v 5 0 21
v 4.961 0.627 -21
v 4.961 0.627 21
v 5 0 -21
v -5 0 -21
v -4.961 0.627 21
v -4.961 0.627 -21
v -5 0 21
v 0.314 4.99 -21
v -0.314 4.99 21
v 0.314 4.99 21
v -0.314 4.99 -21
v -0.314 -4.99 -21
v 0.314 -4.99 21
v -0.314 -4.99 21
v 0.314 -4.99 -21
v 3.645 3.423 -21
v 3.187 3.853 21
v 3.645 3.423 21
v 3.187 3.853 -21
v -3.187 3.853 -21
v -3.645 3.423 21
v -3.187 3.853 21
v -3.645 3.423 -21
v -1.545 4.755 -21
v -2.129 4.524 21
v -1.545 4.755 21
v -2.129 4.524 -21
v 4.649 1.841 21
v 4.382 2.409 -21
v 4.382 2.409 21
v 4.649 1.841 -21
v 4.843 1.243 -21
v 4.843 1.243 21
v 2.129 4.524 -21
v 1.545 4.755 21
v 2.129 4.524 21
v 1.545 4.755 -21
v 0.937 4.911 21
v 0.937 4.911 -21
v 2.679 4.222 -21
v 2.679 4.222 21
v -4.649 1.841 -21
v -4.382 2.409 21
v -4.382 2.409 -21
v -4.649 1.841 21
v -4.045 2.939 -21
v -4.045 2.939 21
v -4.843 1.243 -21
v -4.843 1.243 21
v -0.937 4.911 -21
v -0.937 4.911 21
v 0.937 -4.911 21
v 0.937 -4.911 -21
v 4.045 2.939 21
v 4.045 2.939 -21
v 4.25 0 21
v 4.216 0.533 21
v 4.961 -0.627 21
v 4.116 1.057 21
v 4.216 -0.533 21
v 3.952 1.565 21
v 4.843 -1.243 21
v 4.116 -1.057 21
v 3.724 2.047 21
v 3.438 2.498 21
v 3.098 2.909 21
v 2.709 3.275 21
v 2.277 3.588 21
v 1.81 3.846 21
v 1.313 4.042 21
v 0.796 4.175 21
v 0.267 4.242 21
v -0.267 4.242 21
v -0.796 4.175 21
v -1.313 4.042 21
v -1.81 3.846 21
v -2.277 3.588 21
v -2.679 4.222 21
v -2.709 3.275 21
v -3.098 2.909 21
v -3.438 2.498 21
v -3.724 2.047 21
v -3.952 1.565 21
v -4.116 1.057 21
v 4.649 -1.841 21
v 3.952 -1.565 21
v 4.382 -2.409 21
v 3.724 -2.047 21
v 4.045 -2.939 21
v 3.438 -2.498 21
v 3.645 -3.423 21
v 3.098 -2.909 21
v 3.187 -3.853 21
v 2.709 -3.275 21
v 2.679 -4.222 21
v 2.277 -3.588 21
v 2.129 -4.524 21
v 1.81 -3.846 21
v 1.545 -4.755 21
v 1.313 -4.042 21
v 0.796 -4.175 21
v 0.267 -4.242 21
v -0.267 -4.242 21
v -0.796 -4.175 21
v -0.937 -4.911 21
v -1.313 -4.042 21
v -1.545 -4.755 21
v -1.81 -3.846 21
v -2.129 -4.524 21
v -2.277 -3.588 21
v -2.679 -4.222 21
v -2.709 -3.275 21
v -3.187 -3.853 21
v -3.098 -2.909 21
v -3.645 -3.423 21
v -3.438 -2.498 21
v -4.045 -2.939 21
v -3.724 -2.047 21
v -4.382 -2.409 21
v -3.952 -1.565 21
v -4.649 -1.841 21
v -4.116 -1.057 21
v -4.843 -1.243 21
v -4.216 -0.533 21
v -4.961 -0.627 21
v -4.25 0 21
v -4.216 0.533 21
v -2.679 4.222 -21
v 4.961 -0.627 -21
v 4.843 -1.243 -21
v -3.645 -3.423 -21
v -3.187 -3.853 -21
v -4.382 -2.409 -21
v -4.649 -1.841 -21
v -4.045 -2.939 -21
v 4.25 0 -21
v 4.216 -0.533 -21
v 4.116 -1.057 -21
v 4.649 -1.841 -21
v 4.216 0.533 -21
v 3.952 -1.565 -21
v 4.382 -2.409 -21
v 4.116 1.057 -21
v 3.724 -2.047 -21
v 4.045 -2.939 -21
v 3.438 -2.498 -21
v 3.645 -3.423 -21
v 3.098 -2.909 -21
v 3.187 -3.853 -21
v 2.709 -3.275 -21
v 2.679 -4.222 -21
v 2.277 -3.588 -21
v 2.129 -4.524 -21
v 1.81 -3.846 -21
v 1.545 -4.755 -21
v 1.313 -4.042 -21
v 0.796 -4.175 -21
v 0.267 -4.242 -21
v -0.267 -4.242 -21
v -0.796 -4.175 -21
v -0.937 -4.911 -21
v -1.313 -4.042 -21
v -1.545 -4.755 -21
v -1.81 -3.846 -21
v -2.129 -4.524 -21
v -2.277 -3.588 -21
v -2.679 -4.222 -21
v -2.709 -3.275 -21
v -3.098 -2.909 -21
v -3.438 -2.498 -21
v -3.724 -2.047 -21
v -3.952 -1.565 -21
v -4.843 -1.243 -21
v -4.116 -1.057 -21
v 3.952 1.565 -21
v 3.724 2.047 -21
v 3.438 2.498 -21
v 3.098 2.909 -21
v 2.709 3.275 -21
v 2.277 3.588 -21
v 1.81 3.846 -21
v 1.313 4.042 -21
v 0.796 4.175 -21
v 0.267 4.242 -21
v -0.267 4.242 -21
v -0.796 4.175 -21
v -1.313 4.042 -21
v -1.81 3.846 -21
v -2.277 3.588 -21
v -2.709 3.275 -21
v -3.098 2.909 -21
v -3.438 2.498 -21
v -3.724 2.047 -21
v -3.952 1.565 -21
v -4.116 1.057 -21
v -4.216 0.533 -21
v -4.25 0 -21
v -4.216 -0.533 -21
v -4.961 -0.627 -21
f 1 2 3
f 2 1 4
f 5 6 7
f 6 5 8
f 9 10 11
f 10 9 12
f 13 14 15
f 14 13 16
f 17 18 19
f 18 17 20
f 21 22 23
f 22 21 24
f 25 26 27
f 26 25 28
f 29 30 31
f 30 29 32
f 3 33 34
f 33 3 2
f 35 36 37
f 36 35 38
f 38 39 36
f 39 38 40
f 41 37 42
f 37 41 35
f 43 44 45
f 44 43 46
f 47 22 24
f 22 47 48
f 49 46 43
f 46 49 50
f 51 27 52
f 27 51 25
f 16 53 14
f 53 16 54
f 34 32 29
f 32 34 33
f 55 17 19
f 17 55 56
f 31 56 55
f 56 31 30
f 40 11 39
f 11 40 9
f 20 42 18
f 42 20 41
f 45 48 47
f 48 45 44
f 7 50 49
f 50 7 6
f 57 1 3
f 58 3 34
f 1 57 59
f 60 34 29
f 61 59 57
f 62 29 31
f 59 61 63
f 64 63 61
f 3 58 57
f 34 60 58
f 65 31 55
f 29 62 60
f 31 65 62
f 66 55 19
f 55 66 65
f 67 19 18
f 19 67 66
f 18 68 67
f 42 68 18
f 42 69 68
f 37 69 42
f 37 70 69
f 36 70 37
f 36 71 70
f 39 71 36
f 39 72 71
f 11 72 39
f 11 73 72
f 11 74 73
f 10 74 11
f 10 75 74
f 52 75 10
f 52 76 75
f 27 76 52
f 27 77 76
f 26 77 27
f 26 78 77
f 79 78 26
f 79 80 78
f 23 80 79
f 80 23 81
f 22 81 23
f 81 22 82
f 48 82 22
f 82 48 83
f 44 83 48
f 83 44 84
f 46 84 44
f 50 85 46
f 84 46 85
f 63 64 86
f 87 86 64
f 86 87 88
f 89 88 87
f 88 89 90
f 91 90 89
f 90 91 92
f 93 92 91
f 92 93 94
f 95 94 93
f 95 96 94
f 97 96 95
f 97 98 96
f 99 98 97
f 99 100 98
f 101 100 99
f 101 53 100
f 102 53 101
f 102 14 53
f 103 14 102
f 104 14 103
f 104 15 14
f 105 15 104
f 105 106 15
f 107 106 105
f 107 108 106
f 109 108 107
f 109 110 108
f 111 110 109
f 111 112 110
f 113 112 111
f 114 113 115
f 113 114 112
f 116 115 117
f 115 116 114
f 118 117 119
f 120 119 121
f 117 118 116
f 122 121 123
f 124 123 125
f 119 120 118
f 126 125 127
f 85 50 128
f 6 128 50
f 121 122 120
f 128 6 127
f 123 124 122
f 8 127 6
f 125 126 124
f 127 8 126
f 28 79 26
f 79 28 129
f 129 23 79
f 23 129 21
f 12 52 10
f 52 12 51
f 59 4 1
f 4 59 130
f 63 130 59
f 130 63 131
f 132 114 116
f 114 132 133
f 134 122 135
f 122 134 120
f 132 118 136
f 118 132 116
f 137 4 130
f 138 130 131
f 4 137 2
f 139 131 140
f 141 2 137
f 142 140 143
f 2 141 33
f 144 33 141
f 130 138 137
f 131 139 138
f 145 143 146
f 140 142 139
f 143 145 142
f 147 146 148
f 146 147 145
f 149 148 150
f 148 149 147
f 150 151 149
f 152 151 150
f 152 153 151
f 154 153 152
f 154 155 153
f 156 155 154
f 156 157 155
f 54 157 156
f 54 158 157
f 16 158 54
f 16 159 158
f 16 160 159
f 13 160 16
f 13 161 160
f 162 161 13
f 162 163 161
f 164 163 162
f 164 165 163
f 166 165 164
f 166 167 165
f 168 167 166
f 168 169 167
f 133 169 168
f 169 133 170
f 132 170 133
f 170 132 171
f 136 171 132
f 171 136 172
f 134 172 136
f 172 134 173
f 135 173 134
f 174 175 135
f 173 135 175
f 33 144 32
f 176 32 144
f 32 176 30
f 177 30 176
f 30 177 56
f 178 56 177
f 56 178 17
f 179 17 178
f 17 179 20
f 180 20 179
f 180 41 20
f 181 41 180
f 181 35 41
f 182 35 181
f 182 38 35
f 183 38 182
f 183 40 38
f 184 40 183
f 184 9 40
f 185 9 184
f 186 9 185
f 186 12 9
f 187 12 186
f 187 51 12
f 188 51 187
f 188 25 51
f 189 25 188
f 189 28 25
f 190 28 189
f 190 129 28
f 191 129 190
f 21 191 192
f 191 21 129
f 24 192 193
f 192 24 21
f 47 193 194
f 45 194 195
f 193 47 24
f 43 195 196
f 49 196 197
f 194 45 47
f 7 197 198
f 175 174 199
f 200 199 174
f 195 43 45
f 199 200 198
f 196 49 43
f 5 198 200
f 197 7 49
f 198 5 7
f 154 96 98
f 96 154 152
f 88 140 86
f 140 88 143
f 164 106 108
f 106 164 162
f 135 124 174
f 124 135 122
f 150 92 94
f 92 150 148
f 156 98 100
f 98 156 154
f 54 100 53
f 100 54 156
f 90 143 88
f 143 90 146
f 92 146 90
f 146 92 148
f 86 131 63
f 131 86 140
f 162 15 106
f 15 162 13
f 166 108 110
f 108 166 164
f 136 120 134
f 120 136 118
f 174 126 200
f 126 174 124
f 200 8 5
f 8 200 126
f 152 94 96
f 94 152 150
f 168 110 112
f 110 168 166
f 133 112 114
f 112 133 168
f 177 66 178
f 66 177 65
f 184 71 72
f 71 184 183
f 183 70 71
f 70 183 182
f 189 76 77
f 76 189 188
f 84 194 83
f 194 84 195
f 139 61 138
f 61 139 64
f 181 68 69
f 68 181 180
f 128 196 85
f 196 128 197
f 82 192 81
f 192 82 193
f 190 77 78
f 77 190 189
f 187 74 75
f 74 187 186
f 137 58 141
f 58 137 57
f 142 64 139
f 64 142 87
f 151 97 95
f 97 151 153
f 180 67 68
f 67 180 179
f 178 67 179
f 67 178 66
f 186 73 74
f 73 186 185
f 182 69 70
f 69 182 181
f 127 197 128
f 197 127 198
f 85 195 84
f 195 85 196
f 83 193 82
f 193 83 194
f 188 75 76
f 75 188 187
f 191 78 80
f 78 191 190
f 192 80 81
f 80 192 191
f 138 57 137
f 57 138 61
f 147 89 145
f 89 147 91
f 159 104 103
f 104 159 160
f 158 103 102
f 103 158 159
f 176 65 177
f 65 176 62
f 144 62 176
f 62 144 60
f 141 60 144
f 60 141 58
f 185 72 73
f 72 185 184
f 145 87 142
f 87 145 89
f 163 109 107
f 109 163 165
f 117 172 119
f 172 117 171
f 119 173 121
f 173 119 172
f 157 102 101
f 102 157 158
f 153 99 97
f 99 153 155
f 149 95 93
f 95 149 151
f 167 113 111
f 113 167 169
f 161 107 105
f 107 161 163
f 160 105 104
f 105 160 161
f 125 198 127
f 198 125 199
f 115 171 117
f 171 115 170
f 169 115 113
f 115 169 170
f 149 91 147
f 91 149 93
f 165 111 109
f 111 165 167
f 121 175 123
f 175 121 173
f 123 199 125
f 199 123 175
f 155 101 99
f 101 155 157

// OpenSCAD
$fn = 50;


difference() {
	union() {
		translate(v = [0, 0, -21.0000000000]) {
			cylinder(h = 42, r = 5.0000000000);
		}
	}
	union() {
		translate(v = [0, 0, -100.0000000000]) {
			cylinder(h = 200, r = 4.2500000000);
		}
	}
}
